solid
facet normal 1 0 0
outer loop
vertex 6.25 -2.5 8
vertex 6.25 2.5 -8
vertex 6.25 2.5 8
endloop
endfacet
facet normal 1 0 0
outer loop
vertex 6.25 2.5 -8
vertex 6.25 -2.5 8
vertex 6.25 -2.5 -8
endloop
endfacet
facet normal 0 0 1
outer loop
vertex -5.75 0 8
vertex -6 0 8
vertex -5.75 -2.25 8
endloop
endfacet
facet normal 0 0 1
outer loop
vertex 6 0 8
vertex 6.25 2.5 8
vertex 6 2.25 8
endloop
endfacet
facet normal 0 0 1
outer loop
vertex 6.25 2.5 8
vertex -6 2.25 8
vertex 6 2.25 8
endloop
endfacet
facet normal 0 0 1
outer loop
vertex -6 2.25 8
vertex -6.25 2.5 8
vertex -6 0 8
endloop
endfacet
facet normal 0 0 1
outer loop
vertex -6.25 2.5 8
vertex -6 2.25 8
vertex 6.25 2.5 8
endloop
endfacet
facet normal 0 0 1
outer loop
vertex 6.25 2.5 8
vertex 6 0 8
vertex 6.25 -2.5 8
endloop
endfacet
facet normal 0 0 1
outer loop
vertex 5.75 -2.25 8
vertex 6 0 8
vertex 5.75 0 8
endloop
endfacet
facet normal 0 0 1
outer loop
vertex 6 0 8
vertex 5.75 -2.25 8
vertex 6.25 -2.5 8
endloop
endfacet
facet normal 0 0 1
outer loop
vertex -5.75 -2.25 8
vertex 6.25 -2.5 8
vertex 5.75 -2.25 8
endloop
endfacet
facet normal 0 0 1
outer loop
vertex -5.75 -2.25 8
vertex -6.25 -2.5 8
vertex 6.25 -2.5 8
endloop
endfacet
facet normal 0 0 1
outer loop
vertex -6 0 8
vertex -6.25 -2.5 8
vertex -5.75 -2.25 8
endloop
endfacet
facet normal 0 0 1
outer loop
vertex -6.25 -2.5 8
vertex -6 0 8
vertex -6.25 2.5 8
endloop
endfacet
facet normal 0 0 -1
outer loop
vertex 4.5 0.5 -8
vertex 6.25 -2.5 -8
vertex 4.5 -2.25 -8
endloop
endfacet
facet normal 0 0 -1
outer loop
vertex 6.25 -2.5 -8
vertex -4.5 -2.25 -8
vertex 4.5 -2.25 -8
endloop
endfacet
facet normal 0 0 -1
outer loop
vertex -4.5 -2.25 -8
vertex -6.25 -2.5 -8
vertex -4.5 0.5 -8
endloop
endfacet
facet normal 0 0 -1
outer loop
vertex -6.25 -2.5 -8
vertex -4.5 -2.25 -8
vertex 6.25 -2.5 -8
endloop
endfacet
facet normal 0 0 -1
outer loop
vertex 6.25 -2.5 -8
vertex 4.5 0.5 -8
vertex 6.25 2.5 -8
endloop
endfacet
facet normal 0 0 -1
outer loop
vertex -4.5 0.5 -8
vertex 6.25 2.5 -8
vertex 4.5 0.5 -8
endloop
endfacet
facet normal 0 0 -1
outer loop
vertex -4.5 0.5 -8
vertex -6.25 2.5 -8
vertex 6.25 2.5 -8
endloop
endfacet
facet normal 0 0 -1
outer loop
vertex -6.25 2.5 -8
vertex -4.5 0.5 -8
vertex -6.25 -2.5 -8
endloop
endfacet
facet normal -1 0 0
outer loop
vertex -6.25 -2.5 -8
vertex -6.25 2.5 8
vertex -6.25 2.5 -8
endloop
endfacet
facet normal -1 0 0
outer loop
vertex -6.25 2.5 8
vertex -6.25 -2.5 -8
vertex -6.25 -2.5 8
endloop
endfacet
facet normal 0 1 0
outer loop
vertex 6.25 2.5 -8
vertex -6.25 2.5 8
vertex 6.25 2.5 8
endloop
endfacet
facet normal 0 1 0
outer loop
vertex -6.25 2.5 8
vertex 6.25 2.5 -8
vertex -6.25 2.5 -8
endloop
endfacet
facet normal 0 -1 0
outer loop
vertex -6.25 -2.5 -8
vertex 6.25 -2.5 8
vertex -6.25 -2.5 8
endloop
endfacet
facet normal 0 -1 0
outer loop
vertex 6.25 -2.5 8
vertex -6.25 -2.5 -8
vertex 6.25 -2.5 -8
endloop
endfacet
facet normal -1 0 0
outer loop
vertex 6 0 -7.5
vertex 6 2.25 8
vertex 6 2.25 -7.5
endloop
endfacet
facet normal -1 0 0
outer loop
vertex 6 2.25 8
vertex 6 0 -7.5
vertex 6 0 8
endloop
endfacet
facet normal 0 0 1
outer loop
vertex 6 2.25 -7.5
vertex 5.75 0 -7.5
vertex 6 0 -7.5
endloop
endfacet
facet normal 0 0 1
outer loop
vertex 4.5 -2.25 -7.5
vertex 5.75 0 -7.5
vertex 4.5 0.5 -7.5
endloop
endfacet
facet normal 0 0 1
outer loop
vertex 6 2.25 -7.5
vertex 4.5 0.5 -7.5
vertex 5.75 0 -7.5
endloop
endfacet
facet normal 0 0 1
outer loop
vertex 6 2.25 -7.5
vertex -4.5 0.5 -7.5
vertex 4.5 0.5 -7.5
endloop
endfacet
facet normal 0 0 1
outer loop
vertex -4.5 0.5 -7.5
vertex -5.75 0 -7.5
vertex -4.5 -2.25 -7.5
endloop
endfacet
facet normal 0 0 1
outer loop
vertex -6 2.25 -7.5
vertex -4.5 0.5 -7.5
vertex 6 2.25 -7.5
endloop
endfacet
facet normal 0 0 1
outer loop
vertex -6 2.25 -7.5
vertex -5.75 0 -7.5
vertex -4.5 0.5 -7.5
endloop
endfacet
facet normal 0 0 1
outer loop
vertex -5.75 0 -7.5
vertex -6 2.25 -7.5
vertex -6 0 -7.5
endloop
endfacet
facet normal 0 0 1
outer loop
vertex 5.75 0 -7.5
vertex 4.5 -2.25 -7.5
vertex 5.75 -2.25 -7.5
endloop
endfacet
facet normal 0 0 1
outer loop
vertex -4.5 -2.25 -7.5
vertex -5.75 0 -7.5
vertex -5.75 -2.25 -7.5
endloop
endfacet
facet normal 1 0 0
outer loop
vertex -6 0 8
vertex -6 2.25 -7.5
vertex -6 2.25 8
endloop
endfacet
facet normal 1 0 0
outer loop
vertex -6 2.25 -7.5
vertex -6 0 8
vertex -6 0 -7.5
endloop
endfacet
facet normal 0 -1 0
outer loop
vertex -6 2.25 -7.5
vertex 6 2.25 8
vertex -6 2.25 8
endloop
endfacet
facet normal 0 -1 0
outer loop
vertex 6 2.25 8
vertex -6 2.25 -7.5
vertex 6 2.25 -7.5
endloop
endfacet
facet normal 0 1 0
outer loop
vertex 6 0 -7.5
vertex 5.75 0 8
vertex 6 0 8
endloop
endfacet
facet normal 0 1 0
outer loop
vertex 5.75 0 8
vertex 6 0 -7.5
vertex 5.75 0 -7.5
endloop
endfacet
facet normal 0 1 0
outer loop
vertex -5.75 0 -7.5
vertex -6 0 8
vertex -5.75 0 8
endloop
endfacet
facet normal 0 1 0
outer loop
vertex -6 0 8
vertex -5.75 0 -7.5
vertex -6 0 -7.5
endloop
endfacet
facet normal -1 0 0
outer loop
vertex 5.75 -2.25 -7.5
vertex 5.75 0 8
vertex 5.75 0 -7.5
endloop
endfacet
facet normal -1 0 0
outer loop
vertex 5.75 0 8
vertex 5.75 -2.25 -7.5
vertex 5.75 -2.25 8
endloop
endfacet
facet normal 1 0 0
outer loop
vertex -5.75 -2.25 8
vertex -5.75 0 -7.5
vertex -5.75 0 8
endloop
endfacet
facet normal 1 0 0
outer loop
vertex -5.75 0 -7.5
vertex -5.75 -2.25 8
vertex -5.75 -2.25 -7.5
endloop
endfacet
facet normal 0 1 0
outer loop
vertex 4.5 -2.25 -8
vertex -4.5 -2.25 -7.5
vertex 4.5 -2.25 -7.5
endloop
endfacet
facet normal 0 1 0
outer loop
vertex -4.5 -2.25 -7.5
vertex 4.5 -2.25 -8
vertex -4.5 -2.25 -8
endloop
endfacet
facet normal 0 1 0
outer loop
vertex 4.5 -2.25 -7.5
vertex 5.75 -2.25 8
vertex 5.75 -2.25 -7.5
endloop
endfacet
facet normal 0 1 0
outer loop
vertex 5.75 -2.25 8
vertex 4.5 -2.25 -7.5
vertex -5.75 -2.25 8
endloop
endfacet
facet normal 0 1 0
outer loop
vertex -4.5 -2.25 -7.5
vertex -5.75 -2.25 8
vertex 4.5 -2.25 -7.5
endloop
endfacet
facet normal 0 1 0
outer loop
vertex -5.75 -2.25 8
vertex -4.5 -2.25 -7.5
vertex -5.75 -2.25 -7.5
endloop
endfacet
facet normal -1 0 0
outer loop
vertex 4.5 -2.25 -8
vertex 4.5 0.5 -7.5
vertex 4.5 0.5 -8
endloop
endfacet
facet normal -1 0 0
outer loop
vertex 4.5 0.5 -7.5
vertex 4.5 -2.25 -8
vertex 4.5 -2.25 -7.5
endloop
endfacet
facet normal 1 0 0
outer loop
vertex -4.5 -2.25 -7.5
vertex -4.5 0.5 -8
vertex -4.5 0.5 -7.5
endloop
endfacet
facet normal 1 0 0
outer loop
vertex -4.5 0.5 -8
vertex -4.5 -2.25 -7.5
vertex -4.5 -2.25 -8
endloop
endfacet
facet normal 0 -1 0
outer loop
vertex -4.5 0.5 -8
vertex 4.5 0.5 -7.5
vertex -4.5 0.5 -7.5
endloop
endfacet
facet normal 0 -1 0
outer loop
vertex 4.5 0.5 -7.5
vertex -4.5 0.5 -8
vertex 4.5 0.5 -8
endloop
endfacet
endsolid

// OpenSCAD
conn_width = 12;
conn_height = 4.5;
conn_length = 16;
corner = 0.5;
base = 1;
diff = 0.5;

hole_width = conn_width - 3;
hole_height = conn_height/2 + 0.5;

difference() {
	cube([conn_width + corner, conn_height + corner, conn_length], center=true);
	translate([0, +conn_height/4, base]) cube([conn_width, conn_height/2, conn_length + 1], center=true);
	translate([0, -conn_height/4, base]) cube([conn_width - diff, conn_height/2, conn_length + 1], center=true);
	translate([0, -conn_height/4 + corner/2, 0]) cube([hole_width, hole_height, conn_length + 1], center=true);
}
